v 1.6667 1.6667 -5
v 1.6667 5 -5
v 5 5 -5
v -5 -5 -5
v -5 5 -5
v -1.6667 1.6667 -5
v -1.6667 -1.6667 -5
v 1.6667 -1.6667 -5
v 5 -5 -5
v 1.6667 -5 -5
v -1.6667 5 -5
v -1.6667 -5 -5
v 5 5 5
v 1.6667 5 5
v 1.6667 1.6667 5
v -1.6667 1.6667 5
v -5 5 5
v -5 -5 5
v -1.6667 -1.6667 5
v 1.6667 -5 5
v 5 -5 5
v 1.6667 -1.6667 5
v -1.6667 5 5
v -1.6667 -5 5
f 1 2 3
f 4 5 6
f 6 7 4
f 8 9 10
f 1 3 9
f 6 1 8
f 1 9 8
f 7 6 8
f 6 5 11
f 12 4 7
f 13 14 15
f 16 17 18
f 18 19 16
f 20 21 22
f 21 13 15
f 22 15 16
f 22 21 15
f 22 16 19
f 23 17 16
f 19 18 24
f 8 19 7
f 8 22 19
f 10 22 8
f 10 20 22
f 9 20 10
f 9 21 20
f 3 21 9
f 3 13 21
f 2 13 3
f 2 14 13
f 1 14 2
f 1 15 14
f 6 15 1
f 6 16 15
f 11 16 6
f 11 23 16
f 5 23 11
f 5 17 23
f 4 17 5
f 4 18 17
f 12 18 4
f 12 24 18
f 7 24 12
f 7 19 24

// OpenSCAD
// Generated by SolidPython 1.1.3 on 2025-02-21 17:13:14
$fn=50;


translate(v = [-5.0000000000, -5.0000000000, -5.0000000000]) {
	linear_extrude(height = 10) {
		polygon(points = [[0, 0], [3.3333333333, 0], [3.3333333333, 3.3333333333], [6.6666666667, 3.3333333333], [6.6666666667, 0], [10, 0], [10, 10], [6.6666666667, 10], [6.6666666667, 6.6666666667], [3.3333333333, 6.6666666667], [3.3333333333, 10], [0, 10]]);
	}
}
/***********************************************
*********      SolidPython code:      **********
************************************************
 
from solid import *
from solid.utils import *

import math
import matplotlib.pyplot as plt
import subprocess
import os
import pdb

def arc_points(radius, start_angle, end_angle, center=[0,0], num_points=50):
    angles = [start_angle + i * (end_angle - start_angle) / (num_points - 1)
              for i in range(num_points)]
    points = [
        (center[0] + radius * math.cos(math.radians(angle)),
         center[1] + radius * math.sin(math.radians(angle)))
        for angle in angles
    ]
    return points

class Hole:
    def __init__(self, radius, x, y):
        """
        Hole defined by:
        :param x: x dimension for center point of the circle as a ratio of letter height
        :param y: y dimension for center point of the circle as a ratio of letter height
        :param radius: radius of circle as a ratio of letter height
        """
        self.x = x
        self.y = y
        self.radius = radius

class Letter2D:
    def __init__(self, letter, scale):
        self.letter = letter
        self.scale = scale
        self.shape = self.generate()


    def get_letter_points(self):
        points = []
        if self.letter == "A":
            points = [(0,0), (1/2, 1), (1, 0), (5/6, 0), (2/3, 1/3), (1/3, 1/3), (1/6, 0)]
        if self.letter == "B":
            top_arc_points = arc_points(1/4, 90, -90, center=[3/4, 3/4])
            bottom_arc_points = arc_points(1/4, 90, -90, center=[3/4, 1/4])
            other_points = [(0,0),(0,1)]
            points = top_arc_points + bottom_arc_points + other_points
        if self.letter == "C":
            outer_arc_points = arc_points(1/2, 30, 330, center=[1/2,1/2])
            inner_arc_points = arc_points(1/4, 30, 330, center=[1/2,1/2])[::-1]
            points = outer_arc_points + inner_arc_points
        if self.letter == "D":
            outer_arc_points = arc_points(1/2, 90, -90, center= [1/2, 1/2])
            points = outer_arc_points + [(0,0), (0, 1)]
        if self.letter == "E":
            points = [(0,0), (1,0), (1,1/5), (1/5,1/5), (1/5,2/5), (3/4,2/5), (3/4,3/5), (1/5,3/5), (1/5,4/5), (1,4/5), (1,1), (0,1)]
        if self.letter == "F":
            points = [(0,0), (1/5,0), (1/5,2/5), (3/4,2/5), (3/4,3/5), (1/5,3/5), (1/5,4/5), (1,4/5), (1,1), (0,1)]
        if self.letter == "G":
            outer_arc_points = arc_points(1/2, 30, 360, center=[1/2,1/2])
            other_points = [(1/2, 1/2), (1/2, 1/3)]
            inner_arc_points = arc_points(1/4, 315, 30, center=[1/2,1/2])
            points = outer_arc_points + other_points + inner_arc_points
        if self.letter == "H":
            points = [(0,0), (1/3,0), (1/3,1/3), (2/3,1/3), (2/3,0), (1,0), (1,1), (2/3,1), (2/3,2/3), (1/3,2/3), (1/3,1), (0,1)]

        scaled_points = [(p[0] * self.scale, p[1] * self.scale) for p in points]
        return scaled_points
    

    def get_letter_holes(self):
        holes = []
        if self.letter == "A": 
            holes = [Hole(1/6, 1/2, 7/12)]
        if self.letter == "B":
            holes = [Hole(1/6, 1/2, 3/4), Hole(1/6, 1/2, 1/4)]
        if self.letter == "D":
            holes = [Hole(1/2, 1/2, 1/6)]

        scaled_holes = [Hole(hole.radius*self.scale, hole.x*self.scale, hole.y*self.scale) for hole in holes]
        return scaled_holes

    
    def generate(self):
        outer_shape_points = self.get_letter_points()
        shape = polygon(points=outer_shape_points)
        holes = self.get_letter_holes()

        if holes:
            for hole in holes:
                circle_hole = circle(r=hole.radius)
                positioned_hole = translate([hole.x, hole.y])(circle_hole)
                shape = difference()(shape, positioned_hole)
        return shape
    
    def render(self):
        scad_render_to_file(self.shape, f"output/{self.name}.scad", file_header='$fn=50;')
        subprocess.run(["C:\\Program Files\\OpenSCAD\\openscad.exe", "-o", f"output\\{self.name}.stl", f"output\\{self.name}.scad"])


class TwoLetter3D:
    def __init__(self, height, letterA, letterB=None):
        self.height = height
        self.letterA = letterA
        self.letterB = letterB
    

    def generate_3d_letter(self, letter):
        letter = letter.upper()
        # TODO: add catch here for is letter is not a letter
        shape = Letter2D(letter, self.height).generate()
        shape_3d = linear_extrude(height=self.height)(shape)
        centered_shape_3d = translate([-self.height/2, -self.height/2, -self.height/2])(shape_3d)
        return centered_shape_3d


    def render(self):
        letterA3D = self.generate_3d_letter(self.letterA)

        if self.letterB:
            letterB3D = self.generate_3d_letter(self.letterB)
            letterB3D = rotate(a=90, v=[0,1,0])(letterB3D)

            combined = intersection()(letterA3D, letterB3D)
            file_name = self.letterA + self.letterB
            scad_render_to_file(combined, f"output/{file_name}.scad", file_header='$fn=50;')
            subprocess.run(["C:\\Program Files\\OpenSCAD\\openscad.exe", "-o", f"output\\{file_name}.stl", f"output\\{file_name}.scad"])
            return
        else:
            file_name = self.letterA
            scad_render_to_file(letterA3D, f"output/{file_name}.scad", file_header='$fn=50;')
            subprocess.run(["C:\\Program Files\\OpenSCAD\\openscad.exe", "-o", f"output\\{file_name}.stl", f"output\\{file_name}.scad"])
            return
                


if __name__ == "__main__":
    os.makedirs("output", exist_ok=True)
    
    letters = [chr(x) for x in range(ord('A'), ord('F') + 1)]

    # Generate all combos
    # for letter in letters:
    #     for other_letter in letters:
    #         shape = TwoLetter3D(10, letter, other_letter)
    #         shape.render()

    # Generate all letters
    # for letter in letters:
    #     shape = TwoLetter3D(10, letter, "z")
    #     shape.render()

    #Generate a letter
    shape = TwoLetter3D(10, "H")
    shape.render()
 
 
************************************************/
